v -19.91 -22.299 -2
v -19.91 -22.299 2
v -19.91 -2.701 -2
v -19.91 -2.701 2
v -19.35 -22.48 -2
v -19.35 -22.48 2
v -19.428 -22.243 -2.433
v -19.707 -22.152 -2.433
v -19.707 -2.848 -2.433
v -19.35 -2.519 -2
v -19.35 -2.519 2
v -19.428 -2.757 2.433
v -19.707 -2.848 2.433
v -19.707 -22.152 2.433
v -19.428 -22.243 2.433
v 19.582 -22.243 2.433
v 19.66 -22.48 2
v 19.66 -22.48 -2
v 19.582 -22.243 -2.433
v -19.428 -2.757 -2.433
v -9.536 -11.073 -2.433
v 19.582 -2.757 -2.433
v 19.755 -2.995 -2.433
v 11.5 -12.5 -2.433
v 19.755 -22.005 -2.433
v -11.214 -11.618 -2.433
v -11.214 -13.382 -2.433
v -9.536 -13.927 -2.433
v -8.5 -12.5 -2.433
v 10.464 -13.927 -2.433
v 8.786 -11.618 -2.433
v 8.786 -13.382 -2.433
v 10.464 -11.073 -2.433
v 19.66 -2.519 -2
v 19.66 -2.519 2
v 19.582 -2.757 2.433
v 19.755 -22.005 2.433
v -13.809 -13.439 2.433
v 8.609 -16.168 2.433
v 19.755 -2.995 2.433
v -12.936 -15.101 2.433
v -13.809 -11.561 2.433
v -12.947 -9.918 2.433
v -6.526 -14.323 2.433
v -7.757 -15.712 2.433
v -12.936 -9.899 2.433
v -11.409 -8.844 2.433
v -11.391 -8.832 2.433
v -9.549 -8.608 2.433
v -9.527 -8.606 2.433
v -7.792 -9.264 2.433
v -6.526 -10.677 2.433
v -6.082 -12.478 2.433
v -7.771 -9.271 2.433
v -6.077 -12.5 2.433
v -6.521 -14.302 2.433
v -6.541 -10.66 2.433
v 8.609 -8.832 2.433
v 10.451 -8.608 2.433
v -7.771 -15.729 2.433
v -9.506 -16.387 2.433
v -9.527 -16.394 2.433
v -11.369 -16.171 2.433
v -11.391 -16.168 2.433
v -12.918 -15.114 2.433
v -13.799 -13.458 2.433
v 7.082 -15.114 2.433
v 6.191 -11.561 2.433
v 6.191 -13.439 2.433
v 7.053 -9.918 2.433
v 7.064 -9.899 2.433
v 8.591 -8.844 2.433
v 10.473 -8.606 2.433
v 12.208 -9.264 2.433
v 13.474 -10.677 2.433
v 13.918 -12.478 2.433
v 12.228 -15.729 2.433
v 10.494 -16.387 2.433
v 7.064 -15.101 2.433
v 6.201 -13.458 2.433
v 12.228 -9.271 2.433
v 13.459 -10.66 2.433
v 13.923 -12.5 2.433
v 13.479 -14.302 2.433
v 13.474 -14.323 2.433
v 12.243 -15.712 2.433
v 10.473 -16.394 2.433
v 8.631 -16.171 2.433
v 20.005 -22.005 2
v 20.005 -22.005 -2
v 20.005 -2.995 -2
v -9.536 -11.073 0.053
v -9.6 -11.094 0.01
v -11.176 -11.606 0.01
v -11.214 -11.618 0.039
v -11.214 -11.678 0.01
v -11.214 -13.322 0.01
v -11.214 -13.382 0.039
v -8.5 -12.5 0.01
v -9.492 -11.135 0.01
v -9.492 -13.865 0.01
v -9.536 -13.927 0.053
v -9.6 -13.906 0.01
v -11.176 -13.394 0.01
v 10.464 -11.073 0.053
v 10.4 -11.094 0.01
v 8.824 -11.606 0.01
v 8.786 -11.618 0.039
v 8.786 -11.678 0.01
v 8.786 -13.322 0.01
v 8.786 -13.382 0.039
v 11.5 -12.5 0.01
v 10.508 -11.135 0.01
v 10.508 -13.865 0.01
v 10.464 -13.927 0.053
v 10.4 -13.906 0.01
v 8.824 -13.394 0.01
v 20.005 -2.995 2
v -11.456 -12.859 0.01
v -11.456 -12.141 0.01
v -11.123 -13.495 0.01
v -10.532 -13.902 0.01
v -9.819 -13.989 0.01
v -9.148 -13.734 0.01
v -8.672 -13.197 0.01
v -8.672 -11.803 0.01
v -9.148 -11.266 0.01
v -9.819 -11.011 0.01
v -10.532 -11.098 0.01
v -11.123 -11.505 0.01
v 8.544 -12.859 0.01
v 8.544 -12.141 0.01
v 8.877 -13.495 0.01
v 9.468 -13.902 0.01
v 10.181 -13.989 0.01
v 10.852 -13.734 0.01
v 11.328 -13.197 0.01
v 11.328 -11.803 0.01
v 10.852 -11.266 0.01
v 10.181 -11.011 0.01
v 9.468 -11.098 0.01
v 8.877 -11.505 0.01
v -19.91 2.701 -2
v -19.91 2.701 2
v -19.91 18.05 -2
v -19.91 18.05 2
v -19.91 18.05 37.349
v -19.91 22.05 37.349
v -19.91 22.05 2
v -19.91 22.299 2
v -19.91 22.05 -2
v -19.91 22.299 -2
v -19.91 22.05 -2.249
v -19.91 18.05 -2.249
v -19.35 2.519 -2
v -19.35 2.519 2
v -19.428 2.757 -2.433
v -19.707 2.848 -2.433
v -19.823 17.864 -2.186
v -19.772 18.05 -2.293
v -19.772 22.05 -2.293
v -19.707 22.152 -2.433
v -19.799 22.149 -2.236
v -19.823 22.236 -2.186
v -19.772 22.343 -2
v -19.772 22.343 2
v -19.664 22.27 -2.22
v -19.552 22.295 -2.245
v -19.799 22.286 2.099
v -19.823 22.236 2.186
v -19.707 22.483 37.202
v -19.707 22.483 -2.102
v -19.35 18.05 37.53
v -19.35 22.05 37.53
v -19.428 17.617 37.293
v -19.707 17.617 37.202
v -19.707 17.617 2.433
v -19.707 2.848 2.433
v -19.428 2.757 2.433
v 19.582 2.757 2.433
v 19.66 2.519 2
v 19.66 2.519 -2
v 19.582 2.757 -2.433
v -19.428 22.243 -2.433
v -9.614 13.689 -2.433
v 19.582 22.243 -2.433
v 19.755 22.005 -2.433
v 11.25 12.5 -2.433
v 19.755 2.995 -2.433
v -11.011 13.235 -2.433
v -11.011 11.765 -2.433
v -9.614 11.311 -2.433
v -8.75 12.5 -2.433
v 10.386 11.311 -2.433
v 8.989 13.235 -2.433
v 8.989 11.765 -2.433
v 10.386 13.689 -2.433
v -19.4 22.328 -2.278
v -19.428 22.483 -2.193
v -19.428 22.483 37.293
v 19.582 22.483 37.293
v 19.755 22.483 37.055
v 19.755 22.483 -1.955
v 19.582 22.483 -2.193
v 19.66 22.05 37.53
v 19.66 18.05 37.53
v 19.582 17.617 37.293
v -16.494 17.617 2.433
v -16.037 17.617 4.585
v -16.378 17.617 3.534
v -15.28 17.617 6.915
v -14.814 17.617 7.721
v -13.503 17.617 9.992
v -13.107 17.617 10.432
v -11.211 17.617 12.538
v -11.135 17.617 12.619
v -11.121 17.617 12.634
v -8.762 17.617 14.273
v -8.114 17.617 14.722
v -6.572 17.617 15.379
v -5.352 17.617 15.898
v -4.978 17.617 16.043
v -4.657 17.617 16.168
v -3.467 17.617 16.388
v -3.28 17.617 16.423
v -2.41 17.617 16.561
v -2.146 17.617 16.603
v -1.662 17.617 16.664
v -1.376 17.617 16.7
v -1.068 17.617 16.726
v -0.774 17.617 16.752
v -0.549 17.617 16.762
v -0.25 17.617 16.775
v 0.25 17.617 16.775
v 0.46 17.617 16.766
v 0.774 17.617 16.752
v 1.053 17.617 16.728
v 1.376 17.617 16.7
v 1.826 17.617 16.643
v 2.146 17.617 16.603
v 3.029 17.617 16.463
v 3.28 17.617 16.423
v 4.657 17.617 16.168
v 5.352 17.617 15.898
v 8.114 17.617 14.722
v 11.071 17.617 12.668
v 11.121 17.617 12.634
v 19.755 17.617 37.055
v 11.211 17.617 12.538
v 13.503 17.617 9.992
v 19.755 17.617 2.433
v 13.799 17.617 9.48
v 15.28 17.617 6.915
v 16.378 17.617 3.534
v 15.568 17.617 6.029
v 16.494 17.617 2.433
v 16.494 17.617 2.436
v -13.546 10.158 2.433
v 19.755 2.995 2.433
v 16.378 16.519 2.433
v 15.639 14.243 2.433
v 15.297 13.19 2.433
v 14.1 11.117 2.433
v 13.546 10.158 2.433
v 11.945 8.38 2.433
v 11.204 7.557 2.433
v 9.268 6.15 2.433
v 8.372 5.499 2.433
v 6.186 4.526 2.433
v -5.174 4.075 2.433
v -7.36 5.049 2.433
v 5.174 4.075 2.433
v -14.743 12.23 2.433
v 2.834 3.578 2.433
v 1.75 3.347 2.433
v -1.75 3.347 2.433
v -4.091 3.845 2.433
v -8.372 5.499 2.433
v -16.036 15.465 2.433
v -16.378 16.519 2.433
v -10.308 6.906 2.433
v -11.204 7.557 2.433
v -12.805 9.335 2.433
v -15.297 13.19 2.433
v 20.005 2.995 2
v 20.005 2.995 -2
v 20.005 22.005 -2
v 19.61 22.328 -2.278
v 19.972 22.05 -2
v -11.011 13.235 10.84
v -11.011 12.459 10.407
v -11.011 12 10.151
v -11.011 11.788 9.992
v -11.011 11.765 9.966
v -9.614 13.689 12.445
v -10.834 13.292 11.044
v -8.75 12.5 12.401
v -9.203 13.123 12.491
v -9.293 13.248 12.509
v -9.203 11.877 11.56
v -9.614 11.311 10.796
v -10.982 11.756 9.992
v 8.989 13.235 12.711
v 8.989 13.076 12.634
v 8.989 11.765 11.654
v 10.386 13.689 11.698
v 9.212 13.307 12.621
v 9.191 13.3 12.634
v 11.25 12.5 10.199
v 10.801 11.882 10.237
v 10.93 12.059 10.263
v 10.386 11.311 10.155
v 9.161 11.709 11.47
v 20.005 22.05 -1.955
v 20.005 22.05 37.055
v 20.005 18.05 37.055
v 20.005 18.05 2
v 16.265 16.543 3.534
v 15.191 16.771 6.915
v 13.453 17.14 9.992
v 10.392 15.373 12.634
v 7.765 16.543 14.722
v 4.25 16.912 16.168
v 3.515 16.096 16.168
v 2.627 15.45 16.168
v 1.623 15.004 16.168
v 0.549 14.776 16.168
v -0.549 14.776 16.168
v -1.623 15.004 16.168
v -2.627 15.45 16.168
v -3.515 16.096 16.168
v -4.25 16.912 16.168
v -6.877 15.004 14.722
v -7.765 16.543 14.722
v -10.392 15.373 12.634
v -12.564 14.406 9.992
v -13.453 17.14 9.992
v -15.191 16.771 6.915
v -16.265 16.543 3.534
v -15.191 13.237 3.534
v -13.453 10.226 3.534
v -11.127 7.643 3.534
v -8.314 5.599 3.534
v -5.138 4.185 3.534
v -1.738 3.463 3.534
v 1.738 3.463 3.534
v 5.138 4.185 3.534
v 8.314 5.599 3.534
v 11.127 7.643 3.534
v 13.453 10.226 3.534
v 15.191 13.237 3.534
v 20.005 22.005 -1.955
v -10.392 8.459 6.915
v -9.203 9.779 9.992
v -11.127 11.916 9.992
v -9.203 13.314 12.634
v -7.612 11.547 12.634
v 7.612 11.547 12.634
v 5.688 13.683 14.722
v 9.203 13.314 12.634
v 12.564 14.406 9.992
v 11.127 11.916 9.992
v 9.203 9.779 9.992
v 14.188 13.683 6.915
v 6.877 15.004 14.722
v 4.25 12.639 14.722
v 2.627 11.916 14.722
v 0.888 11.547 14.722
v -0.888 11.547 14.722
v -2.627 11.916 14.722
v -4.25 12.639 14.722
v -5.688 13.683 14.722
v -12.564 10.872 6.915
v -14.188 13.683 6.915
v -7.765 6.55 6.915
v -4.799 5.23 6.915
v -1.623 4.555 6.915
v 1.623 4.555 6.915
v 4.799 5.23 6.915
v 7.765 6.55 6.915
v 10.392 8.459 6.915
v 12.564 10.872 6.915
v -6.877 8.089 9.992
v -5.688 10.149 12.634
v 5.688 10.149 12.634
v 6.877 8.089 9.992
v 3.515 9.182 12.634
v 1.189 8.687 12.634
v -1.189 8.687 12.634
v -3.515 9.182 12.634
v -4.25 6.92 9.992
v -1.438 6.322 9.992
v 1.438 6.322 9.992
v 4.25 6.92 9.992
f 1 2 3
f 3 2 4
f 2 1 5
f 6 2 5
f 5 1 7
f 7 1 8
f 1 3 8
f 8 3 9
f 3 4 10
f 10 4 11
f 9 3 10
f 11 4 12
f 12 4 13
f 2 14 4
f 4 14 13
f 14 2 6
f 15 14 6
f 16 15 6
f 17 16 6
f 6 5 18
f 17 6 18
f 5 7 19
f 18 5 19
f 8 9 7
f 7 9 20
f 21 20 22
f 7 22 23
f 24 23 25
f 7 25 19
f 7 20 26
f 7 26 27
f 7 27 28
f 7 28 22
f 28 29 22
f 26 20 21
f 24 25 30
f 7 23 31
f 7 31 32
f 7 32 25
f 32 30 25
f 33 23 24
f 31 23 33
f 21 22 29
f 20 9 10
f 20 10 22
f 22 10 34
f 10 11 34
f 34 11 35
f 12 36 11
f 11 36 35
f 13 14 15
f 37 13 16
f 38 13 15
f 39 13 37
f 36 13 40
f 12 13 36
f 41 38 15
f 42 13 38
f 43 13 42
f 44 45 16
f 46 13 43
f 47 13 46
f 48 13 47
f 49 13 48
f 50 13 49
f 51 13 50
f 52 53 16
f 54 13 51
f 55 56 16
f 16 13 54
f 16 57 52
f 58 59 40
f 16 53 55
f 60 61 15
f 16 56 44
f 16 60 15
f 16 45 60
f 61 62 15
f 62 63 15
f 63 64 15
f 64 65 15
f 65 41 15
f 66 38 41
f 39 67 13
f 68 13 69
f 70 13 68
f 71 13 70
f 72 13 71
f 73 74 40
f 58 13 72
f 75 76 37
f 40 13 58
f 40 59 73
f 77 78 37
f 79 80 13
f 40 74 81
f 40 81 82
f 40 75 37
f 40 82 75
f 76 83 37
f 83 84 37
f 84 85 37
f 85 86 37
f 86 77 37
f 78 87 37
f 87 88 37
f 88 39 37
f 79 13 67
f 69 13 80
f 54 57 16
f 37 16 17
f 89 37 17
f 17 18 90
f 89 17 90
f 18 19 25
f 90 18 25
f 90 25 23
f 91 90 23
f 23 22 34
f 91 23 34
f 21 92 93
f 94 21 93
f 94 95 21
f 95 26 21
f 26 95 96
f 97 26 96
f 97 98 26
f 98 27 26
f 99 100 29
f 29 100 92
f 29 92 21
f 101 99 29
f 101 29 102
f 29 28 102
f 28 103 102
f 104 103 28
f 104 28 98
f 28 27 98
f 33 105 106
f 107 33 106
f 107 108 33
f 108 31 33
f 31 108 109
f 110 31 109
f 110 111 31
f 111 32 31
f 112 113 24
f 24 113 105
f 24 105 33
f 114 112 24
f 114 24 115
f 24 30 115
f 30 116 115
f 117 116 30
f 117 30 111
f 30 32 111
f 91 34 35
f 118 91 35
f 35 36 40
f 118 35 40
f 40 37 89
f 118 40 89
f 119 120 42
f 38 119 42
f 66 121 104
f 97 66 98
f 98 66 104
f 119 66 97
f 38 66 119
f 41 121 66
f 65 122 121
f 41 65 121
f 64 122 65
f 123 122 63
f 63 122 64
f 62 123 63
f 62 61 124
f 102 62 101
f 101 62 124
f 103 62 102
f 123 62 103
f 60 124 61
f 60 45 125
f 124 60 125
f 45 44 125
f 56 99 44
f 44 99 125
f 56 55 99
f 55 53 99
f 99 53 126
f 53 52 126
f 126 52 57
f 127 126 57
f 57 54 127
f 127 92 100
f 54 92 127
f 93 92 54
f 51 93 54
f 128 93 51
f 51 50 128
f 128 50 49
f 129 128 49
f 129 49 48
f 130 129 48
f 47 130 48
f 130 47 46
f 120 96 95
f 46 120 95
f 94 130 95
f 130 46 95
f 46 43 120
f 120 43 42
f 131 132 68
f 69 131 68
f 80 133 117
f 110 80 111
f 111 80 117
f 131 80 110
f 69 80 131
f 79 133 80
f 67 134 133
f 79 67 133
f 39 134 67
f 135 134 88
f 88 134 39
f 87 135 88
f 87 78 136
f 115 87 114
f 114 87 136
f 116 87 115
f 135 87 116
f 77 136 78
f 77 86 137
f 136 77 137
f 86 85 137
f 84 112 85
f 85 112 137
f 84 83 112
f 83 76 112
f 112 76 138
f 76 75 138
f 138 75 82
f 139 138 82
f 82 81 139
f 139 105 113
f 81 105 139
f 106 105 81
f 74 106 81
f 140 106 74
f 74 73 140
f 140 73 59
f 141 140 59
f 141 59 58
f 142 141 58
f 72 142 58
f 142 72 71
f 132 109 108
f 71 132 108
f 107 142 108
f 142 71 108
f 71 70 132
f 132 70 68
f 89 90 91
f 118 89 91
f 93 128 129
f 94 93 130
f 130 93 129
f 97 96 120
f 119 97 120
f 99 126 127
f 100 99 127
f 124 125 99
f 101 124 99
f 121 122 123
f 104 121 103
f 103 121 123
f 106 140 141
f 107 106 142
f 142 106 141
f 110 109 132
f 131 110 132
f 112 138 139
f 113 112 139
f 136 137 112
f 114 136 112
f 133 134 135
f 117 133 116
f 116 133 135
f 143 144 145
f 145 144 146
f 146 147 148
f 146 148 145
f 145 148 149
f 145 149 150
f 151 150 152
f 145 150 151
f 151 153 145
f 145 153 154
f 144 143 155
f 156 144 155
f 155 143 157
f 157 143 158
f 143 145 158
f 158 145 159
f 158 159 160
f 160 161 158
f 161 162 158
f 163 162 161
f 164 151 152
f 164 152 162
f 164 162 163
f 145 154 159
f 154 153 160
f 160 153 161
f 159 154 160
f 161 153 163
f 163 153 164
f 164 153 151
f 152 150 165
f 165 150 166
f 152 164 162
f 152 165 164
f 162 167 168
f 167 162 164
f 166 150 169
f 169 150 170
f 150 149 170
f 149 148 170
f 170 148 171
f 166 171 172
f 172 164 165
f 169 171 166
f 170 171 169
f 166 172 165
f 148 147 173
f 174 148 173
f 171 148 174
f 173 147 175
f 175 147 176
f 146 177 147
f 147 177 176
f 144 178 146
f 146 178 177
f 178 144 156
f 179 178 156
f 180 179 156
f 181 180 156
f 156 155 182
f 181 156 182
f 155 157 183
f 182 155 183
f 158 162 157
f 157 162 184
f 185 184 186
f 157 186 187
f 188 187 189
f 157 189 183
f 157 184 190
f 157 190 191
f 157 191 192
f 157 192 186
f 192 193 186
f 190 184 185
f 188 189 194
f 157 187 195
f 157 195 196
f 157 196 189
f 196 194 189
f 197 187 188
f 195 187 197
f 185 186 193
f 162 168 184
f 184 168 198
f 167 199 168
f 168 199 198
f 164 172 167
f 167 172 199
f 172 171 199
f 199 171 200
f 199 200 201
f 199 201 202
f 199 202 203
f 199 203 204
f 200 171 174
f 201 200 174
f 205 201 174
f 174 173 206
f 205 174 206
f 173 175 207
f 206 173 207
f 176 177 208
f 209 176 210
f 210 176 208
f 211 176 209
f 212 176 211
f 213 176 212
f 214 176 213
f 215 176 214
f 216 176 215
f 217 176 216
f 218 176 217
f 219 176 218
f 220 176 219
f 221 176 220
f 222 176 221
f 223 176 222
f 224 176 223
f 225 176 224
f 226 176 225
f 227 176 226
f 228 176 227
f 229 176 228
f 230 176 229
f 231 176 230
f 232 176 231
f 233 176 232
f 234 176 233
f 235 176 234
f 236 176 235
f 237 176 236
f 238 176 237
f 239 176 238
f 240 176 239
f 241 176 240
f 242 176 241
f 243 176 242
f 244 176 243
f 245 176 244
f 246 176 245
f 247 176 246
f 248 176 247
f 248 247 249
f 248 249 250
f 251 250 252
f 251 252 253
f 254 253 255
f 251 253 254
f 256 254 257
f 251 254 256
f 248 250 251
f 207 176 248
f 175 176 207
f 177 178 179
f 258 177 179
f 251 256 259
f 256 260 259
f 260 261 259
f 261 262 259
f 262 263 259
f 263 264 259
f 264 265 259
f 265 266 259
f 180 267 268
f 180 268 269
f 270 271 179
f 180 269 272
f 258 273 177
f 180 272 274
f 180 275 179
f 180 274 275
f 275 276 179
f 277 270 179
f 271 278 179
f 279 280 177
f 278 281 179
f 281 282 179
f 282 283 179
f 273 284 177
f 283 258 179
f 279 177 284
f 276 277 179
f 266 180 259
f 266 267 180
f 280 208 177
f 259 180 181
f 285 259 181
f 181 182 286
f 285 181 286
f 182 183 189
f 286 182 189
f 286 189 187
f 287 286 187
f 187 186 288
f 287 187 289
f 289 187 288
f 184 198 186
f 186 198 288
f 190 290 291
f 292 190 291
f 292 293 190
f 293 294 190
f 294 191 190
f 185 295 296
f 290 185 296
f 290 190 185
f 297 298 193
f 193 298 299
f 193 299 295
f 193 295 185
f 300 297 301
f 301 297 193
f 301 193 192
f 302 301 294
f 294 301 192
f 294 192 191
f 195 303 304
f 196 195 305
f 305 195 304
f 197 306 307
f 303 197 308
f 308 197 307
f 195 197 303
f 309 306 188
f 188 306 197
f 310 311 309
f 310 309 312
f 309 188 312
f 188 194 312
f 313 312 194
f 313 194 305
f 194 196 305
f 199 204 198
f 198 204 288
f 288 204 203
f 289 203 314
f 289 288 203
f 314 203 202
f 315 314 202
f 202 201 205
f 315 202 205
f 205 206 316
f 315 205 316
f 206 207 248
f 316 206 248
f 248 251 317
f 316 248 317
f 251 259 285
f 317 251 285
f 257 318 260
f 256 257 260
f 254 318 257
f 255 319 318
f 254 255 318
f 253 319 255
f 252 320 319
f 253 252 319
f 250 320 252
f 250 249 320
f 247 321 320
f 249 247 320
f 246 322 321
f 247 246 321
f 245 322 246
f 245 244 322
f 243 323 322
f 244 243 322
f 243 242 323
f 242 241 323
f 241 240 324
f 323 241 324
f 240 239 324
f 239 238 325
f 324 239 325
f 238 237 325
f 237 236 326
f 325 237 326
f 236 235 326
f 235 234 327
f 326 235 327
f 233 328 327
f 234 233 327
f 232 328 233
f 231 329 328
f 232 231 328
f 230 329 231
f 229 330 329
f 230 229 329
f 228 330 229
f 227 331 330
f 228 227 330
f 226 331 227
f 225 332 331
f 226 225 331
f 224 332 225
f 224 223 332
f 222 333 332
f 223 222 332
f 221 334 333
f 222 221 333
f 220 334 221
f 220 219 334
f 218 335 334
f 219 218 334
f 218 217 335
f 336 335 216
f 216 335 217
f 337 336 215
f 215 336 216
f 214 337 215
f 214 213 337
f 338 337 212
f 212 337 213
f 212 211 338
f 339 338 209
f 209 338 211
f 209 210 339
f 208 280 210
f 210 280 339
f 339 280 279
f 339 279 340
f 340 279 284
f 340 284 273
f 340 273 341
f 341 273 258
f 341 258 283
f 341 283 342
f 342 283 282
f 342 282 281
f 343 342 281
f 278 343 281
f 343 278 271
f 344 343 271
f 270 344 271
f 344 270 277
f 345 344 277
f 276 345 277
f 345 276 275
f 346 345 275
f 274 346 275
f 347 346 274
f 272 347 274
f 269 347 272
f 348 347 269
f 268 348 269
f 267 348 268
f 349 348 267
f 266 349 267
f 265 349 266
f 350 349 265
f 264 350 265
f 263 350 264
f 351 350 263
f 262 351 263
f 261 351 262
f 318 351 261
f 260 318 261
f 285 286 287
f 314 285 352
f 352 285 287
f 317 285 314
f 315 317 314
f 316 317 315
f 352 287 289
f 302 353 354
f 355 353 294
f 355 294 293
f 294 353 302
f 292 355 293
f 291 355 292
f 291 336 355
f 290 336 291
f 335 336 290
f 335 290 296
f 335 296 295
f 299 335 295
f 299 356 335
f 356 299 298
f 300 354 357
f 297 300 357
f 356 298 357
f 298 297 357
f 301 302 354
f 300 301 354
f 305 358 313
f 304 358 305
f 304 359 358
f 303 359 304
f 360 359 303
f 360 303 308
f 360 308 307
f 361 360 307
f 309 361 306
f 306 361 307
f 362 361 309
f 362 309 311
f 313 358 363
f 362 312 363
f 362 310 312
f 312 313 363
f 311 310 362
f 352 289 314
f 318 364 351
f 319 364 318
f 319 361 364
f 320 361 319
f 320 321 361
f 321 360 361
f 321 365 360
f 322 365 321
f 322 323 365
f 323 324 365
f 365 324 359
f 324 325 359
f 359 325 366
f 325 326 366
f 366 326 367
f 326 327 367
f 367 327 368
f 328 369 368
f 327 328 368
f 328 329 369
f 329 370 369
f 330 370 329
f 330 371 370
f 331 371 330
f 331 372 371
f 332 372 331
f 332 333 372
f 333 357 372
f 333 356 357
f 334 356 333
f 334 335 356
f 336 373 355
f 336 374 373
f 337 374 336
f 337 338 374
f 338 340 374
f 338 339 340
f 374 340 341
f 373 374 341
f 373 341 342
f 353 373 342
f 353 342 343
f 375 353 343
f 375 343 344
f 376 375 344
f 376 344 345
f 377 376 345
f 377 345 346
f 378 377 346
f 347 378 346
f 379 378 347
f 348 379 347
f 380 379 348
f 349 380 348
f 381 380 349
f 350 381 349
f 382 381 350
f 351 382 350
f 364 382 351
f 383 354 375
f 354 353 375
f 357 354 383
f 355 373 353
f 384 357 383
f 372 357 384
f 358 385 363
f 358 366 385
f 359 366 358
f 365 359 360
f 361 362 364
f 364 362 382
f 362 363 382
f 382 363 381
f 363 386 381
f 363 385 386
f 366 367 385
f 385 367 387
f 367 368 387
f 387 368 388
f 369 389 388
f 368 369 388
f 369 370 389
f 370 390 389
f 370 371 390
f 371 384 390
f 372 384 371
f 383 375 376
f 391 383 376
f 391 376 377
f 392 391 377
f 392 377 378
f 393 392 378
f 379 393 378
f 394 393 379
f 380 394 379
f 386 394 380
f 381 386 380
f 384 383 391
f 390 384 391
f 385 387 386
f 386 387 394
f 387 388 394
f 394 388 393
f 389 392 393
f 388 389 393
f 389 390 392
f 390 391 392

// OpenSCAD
BASEX = 40;
BASEY = 20;
STRENGTH = 5;

HOLEDIST = 20;

SPAXDIA = 3;
SPAXDEPTH = .5;
SPAXLEN = 35;
SPAXHEAD = 8;

HEADZ = (SPAXHEAD - SPAXDIA) / 2;

ROUND = 1;

q = .01;

module plate(a=0) {
    minkowski() {
        cube(size=[BASEX+q-ROUND, BASEY+a+q-ROUND, STRENGTH-ROUND], center=true);
        sphere(r=ROUND/2);
    }
}

module screw() {
    union() {
        cylinder(r=SPAXDIA/2, h=SPAXLEN, center=true);
        translate([0, 0, (SPAXLEN-HEADZ)/2]) cylinder(r1=SPAXDIA/2, r2=SPAXHEAD/2, h=HEADZ, center=true);        
    }
}

module inner() {
    difference() {
        plate();
        translate([-HOLEDIST/2, 0,-SPAXLEN/2+HEADZ+q]) screw();
        translate([HOLEDIST/2, 0,-SPAXLEN/2+HEADZ+q]) screw();    
    }    
}

module outer() {
    difference() {
        union() {
            plate();
            translate([0, (BASEY-STRENGTH)/2+.05, BASEY-STRENGTH/2+.05]) rotate([90, 0, 0]) plate(BASEY);
            translate([0, (BASEY-STRENGTH)/2, 0]) difference() {
                sphere(r=BASEY-STRENGTH/2-ROUND/2);
                translate([0, BASEX, 0]) cube(size=[BASEX*2, BASEX*2, BASEX*2], center=true);
                translate([0, 0, -BASEX]) cube(size=[BASEX*2, BASEX*2, BASEX*2], center=true);
            }        
        }
        translate([-HOLEDIST/2, 0, 0]) cylinder(r=(SPAXDIA-SPAXDEPTH)/2, h=SPAXLEN, center=true);
        translate([HOLEDIST/2, 0, 0]) cylinder(r=(SPAXDIA-SPAXDEPTH)/2, h=SPAXLEN, center=true);
    }
    
    
}

translate([0, -(BASEY+STRENGTH)/2, 0]) inner();
translate([0, (BASEY+STRENGTH)/2, 0]) outer();
